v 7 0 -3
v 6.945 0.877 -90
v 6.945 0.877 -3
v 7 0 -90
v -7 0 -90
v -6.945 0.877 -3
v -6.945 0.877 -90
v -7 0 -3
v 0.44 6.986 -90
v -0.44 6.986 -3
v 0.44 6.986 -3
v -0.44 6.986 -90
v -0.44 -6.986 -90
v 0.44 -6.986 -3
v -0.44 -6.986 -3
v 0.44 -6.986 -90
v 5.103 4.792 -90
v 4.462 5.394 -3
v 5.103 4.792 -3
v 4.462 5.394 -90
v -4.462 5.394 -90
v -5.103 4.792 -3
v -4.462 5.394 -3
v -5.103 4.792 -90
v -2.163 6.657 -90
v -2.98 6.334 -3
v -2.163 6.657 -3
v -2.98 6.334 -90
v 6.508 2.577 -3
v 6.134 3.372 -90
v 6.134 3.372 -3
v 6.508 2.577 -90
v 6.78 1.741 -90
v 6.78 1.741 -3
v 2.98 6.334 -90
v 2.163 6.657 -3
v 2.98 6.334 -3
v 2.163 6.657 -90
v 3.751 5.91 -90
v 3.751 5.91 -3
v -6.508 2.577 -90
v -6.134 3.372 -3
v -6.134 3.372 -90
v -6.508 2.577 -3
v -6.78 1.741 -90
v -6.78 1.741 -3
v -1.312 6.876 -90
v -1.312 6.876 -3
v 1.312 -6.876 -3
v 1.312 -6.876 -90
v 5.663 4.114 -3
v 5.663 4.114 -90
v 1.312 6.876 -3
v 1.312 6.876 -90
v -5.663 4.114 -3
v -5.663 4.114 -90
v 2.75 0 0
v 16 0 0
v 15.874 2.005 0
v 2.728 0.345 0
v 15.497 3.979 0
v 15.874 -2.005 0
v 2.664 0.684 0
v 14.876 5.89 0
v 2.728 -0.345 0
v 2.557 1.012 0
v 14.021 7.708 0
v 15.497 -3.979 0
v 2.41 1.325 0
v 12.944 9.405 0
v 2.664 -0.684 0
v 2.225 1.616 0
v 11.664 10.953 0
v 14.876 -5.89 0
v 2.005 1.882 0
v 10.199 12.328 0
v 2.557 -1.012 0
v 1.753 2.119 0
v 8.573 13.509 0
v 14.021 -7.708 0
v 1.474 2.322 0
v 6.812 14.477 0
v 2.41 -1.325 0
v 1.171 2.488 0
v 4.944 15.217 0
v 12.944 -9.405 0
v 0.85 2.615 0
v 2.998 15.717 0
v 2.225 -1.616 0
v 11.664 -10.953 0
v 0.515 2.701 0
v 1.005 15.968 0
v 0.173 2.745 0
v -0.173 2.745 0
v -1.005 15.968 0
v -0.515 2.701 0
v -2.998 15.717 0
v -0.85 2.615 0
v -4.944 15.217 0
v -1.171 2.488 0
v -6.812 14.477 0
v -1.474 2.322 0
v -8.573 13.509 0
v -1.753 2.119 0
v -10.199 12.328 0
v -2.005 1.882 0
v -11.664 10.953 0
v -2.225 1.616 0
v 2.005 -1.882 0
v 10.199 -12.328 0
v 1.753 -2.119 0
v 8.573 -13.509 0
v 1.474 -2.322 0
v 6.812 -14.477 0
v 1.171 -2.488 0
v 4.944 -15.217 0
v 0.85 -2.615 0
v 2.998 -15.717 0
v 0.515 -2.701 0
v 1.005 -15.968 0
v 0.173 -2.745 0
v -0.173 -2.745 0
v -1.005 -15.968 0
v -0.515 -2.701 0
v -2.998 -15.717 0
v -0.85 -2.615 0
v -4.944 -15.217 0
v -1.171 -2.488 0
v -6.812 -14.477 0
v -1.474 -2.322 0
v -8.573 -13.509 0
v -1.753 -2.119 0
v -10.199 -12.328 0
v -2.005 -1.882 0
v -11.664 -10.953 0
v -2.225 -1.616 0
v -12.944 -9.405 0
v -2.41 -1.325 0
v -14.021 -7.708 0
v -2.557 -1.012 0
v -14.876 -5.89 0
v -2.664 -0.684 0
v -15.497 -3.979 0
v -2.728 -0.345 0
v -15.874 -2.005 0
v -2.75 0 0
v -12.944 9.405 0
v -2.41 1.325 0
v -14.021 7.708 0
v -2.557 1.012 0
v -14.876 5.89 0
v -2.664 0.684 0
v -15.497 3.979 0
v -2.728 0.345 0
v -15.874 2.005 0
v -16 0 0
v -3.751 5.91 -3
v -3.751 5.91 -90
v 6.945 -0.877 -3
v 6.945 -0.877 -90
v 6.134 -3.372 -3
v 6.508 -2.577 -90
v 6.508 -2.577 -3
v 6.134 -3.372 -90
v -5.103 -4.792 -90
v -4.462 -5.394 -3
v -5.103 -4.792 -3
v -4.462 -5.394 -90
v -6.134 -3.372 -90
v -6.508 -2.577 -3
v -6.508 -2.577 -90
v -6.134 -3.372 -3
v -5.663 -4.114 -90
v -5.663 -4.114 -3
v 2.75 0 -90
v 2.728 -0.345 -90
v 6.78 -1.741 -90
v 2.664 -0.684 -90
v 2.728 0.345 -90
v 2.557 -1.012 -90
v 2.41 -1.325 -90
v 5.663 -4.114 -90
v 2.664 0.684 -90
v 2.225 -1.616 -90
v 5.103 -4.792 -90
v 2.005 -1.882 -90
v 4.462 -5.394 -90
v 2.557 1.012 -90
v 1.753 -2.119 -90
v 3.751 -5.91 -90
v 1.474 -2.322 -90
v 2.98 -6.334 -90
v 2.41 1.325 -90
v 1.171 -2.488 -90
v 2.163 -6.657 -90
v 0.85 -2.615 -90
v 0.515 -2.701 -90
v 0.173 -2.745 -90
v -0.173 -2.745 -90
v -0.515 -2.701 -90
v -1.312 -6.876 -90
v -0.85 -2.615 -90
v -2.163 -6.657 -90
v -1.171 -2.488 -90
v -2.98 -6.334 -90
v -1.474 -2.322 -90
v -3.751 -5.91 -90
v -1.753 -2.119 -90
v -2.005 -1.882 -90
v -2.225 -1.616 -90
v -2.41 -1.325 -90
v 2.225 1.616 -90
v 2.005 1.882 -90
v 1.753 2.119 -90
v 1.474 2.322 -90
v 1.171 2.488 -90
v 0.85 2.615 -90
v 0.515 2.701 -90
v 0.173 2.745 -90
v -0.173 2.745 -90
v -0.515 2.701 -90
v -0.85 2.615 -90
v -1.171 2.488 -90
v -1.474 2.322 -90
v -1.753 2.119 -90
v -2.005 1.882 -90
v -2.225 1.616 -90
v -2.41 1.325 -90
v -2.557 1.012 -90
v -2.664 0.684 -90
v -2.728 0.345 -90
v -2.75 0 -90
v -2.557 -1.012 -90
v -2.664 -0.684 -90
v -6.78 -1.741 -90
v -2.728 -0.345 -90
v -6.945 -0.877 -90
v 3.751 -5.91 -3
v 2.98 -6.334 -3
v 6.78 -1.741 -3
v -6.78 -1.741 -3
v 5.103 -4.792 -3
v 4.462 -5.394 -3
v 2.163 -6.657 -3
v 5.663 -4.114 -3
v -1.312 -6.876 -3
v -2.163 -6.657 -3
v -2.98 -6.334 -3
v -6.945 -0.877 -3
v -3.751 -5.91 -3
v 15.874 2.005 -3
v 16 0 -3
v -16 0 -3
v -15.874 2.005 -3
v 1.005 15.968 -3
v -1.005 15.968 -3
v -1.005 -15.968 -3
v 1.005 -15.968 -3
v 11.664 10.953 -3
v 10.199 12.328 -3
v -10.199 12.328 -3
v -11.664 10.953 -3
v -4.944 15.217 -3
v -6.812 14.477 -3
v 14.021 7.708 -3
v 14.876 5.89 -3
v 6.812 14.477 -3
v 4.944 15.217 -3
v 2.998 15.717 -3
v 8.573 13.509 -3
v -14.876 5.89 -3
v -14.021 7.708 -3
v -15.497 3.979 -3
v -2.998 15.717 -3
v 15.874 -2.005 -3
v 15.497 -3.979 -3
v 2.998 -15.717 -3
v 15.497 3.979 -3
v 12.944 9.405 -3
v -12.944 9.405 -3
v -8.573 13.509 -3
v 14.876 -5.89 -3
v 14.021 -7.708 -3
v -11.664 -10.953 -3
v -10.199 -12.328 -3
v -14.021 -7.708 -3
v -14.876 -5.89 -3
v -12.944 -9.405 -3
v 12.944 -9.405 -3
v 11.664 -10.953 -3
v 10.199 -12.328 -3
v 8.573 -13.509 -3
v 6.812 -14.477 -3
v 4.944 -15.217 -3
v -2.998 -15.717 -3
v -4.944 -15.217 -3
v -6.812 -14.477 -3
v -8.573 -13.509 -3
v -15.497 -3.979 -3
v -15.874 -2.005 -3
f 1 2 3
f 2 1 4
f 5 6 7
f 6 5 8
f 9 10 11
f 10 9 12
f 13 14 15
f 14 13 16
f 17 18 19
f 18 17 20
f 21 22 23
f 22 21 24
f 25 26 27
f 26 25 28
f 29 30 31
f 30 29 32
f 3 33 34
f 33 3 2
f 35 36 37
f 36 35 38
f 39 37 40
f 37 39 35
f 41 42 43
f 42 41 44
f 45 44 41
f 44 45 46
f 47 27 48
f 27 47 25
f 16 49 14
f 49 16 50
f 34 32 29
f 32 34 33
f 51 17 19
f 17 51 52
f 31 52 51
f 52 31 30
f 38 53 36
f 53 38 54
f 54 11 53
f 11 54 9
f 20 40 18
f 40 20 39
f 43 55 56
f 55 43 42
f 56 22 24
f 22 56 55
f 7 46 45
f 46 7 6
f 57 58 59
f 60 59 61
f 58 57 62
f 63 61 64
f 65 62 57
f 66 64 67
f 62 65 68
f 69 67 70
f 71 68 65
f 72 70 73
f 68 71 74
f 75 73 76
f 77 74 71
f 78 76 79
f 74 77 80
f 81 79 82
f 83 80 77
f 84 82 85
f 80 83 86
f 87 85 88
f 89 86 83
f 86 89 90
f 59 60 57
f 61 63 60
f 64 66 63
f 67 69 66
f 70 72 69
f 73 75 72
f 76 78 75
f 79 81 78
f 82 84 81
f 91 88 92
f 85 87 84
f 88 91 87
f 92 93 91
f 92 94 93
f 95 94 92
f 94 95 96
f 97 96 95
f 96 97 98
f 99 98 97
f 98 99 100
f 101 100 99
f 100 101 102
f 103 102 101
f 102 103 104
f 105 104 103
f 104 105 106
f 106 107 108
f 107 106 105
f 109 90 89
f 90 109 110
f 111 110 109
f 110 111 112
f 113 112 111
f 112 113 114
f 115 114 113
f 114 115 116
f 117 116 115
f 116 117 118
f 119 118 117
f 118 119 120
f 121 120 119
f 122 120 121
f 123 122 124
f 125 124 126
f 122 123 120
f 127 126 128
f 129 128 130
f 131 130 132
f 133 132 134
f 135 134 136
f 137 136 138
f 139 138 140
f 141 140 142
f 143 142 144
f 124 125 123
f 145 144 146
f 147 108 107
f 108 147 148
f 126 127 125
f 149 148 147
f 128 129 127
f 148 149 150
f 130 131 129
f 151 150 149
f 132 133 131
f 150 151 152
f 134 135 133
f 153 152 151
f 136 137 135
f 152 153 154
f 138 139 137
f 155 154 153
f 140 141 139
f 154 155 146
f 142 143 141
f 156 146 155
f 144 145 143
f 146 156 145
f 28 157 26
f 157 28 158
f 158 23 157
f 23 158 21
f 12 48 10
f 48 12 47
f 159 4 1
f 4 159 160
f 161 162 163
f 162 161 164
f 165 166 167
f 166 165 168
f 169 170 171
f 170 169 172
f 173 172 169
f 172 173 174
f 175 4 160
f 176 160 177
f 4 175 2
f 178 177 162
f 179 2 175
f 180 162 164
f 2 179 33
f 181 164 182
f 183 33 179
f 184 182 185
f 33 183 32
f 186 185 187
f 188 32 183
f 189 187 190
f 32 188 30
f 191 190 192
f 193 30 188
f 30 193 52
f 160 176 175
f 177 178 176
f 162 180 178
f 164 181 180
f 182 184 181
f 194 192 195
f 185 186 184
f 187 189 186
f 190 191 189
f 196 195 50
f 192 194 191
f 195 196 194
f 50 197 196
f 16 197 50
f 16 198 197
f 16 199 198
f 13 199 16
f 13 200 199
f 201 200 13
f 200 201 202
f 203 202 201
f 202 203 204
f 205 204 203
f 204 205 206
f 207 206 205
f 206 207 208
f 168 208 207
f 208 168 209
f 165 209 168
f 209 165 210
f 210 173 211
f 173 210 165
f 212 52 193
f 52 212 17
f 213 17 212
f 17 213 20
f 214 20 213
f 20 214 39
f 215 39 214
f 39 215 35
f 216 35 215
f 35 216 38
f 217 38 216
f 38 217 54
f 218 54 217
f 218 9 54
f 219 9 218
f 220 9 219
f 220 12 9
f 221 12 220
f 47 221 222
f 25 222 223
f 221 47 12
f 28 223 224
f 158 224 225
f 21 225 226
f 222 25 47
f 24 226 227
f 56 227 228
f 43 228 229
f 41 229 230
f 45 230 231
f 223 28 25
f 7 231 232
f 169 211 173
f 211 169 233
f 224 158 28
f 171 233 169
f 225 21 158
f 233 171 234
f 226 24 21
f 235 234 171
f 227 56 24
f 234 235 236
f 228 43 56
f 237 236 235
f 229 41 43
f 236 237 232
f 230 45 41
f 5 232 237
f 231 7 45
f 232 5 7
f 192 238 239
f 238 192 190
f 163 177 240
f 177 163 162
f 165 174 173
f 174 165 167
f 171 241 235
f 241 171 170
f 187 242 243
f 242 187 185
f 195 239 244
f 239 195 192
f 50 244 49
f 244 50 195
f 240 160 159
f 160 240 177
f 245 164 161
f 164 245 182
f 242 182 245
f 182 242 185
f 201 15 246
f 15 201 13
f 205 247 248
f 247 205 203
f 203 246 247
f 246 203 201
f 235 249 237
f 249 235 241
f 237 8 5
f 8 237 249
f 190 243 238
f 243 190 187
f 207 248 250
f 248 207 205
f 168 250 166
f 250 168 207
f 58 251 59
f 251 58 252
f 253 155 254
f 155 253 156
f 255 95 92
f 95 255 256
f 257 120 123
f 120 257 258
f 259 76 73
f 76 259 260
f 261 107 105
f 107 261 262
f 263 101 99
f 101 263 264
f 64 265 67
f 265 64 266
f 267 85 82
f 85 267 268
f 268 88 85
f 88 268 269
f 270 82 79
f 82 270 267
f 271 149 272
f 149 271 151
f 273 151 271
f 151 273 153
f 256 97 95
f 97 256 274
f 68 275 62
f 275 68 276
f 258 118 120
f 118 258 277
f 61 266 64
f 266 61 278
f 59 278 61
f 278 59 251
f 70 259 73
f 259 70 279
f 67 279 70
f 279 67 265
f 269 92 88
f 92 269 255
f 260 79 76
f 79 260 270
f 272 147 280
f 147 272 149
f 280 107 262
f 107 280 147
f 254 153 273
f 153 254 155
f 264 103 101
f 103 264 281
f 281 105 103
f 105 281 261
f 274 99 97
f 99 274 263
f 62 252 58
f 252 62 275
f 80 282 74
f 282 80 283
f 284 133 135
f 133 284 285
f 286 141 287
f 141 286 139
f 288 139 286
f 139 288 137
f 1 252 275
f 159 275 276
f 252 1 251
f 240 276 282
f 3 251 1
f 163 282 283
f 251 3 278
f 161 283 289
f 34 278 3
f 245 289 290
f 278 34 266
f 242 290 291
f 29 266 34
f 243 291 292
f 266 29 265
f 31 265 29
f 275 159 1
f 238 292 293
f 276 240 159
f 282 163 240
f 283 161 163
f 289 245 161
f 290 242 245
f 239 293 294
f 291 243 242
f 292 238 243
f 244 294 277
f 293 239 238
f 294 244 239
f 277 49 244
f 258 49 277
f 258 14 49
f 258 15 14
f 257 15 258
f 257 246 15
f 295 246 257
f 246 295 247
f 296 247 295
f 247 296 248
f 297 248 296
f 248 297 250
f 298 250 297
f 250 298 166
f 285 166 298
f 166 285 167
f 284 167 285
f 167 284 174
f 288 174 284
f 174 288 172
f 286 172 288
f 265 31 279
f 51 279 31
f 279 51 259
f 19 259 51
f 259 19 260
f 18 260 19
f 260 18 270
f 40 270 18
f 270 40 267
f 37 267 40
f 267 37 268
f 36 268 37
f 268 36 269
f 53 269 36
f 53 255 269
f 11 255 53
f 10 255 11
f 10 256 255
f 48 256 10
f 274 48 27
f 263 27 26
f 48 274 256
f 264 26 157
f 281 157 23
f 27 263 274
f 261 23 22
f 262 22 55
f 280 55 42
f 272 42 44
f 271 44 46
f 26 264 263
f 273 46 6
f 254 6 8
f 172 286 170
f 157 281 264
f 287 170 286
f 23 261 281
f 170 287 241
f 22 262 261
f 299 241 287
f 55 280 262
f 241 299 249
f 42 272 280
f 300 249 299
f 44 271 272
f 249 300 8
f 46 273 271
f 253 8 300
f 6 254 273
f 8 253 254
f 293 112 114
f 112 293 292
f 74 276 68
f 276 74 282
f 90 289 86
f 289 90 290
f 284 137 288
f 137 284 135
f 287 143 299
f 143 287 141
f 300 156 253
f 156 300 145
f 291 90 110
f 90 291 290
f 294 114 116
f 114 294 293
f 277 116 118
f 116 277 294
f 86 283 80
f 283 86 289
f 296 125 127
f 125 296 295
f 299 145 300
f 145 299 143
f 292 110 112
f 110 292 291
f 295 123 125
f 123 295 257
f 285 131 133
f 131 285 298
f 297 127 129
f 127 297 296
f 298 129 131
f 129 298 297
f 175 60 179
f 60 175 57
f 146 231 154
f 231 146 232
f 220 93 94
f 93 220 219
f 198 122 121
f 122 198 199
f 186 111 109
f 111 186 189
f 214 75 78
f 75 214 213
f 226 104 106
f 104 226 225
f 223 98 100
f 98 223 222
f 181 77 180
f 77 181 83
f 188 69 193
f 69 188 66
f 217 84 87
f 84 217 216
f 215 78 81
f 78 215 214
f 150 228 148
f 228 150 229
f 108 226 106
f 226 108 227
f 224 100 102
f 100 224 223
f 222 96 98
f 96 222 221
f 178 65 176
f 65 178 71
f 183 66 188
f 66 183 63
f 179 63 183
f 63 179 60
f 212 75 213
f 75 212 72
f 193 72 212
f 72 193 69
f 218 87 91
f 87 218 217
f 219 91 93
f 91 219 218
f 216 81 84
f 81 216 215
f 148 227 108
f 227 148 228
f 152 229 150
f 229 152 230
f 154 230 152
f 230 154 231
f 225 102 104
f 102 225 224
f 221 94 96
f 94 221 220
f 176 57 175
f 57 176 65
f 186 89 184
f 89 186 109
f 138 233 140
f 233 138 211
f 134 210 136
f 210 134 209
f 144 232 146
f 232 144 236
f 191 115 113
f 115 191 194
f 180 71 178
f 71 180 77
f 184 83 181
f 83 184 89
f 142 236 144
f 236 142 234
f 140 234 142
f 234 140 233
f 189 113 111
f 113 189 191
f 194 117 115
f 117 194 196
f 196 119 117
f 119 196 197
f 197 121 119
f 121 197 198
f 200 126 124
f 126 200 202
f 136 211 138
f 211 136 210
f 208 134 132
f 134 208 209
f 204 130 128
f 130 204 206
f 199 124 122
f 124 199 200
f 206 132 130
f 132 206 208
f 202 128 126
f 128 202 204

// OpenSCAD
$fn = 50;


difference() {
	union() {
		translate(v = [0, 0, -90.0000000000]) {
			cylinder(h = 90, r = 7.0000000000);
		}
		translate(v = [0, 0, -3.0000000000]) {
			cylinder(h = 3, r = 16.0000000000);
		}
	}
	union() {
		#translate(v = [0, 0, -90]) {
			cylinder(h = 90, r = 2.7500000000);
		}
	}
}
